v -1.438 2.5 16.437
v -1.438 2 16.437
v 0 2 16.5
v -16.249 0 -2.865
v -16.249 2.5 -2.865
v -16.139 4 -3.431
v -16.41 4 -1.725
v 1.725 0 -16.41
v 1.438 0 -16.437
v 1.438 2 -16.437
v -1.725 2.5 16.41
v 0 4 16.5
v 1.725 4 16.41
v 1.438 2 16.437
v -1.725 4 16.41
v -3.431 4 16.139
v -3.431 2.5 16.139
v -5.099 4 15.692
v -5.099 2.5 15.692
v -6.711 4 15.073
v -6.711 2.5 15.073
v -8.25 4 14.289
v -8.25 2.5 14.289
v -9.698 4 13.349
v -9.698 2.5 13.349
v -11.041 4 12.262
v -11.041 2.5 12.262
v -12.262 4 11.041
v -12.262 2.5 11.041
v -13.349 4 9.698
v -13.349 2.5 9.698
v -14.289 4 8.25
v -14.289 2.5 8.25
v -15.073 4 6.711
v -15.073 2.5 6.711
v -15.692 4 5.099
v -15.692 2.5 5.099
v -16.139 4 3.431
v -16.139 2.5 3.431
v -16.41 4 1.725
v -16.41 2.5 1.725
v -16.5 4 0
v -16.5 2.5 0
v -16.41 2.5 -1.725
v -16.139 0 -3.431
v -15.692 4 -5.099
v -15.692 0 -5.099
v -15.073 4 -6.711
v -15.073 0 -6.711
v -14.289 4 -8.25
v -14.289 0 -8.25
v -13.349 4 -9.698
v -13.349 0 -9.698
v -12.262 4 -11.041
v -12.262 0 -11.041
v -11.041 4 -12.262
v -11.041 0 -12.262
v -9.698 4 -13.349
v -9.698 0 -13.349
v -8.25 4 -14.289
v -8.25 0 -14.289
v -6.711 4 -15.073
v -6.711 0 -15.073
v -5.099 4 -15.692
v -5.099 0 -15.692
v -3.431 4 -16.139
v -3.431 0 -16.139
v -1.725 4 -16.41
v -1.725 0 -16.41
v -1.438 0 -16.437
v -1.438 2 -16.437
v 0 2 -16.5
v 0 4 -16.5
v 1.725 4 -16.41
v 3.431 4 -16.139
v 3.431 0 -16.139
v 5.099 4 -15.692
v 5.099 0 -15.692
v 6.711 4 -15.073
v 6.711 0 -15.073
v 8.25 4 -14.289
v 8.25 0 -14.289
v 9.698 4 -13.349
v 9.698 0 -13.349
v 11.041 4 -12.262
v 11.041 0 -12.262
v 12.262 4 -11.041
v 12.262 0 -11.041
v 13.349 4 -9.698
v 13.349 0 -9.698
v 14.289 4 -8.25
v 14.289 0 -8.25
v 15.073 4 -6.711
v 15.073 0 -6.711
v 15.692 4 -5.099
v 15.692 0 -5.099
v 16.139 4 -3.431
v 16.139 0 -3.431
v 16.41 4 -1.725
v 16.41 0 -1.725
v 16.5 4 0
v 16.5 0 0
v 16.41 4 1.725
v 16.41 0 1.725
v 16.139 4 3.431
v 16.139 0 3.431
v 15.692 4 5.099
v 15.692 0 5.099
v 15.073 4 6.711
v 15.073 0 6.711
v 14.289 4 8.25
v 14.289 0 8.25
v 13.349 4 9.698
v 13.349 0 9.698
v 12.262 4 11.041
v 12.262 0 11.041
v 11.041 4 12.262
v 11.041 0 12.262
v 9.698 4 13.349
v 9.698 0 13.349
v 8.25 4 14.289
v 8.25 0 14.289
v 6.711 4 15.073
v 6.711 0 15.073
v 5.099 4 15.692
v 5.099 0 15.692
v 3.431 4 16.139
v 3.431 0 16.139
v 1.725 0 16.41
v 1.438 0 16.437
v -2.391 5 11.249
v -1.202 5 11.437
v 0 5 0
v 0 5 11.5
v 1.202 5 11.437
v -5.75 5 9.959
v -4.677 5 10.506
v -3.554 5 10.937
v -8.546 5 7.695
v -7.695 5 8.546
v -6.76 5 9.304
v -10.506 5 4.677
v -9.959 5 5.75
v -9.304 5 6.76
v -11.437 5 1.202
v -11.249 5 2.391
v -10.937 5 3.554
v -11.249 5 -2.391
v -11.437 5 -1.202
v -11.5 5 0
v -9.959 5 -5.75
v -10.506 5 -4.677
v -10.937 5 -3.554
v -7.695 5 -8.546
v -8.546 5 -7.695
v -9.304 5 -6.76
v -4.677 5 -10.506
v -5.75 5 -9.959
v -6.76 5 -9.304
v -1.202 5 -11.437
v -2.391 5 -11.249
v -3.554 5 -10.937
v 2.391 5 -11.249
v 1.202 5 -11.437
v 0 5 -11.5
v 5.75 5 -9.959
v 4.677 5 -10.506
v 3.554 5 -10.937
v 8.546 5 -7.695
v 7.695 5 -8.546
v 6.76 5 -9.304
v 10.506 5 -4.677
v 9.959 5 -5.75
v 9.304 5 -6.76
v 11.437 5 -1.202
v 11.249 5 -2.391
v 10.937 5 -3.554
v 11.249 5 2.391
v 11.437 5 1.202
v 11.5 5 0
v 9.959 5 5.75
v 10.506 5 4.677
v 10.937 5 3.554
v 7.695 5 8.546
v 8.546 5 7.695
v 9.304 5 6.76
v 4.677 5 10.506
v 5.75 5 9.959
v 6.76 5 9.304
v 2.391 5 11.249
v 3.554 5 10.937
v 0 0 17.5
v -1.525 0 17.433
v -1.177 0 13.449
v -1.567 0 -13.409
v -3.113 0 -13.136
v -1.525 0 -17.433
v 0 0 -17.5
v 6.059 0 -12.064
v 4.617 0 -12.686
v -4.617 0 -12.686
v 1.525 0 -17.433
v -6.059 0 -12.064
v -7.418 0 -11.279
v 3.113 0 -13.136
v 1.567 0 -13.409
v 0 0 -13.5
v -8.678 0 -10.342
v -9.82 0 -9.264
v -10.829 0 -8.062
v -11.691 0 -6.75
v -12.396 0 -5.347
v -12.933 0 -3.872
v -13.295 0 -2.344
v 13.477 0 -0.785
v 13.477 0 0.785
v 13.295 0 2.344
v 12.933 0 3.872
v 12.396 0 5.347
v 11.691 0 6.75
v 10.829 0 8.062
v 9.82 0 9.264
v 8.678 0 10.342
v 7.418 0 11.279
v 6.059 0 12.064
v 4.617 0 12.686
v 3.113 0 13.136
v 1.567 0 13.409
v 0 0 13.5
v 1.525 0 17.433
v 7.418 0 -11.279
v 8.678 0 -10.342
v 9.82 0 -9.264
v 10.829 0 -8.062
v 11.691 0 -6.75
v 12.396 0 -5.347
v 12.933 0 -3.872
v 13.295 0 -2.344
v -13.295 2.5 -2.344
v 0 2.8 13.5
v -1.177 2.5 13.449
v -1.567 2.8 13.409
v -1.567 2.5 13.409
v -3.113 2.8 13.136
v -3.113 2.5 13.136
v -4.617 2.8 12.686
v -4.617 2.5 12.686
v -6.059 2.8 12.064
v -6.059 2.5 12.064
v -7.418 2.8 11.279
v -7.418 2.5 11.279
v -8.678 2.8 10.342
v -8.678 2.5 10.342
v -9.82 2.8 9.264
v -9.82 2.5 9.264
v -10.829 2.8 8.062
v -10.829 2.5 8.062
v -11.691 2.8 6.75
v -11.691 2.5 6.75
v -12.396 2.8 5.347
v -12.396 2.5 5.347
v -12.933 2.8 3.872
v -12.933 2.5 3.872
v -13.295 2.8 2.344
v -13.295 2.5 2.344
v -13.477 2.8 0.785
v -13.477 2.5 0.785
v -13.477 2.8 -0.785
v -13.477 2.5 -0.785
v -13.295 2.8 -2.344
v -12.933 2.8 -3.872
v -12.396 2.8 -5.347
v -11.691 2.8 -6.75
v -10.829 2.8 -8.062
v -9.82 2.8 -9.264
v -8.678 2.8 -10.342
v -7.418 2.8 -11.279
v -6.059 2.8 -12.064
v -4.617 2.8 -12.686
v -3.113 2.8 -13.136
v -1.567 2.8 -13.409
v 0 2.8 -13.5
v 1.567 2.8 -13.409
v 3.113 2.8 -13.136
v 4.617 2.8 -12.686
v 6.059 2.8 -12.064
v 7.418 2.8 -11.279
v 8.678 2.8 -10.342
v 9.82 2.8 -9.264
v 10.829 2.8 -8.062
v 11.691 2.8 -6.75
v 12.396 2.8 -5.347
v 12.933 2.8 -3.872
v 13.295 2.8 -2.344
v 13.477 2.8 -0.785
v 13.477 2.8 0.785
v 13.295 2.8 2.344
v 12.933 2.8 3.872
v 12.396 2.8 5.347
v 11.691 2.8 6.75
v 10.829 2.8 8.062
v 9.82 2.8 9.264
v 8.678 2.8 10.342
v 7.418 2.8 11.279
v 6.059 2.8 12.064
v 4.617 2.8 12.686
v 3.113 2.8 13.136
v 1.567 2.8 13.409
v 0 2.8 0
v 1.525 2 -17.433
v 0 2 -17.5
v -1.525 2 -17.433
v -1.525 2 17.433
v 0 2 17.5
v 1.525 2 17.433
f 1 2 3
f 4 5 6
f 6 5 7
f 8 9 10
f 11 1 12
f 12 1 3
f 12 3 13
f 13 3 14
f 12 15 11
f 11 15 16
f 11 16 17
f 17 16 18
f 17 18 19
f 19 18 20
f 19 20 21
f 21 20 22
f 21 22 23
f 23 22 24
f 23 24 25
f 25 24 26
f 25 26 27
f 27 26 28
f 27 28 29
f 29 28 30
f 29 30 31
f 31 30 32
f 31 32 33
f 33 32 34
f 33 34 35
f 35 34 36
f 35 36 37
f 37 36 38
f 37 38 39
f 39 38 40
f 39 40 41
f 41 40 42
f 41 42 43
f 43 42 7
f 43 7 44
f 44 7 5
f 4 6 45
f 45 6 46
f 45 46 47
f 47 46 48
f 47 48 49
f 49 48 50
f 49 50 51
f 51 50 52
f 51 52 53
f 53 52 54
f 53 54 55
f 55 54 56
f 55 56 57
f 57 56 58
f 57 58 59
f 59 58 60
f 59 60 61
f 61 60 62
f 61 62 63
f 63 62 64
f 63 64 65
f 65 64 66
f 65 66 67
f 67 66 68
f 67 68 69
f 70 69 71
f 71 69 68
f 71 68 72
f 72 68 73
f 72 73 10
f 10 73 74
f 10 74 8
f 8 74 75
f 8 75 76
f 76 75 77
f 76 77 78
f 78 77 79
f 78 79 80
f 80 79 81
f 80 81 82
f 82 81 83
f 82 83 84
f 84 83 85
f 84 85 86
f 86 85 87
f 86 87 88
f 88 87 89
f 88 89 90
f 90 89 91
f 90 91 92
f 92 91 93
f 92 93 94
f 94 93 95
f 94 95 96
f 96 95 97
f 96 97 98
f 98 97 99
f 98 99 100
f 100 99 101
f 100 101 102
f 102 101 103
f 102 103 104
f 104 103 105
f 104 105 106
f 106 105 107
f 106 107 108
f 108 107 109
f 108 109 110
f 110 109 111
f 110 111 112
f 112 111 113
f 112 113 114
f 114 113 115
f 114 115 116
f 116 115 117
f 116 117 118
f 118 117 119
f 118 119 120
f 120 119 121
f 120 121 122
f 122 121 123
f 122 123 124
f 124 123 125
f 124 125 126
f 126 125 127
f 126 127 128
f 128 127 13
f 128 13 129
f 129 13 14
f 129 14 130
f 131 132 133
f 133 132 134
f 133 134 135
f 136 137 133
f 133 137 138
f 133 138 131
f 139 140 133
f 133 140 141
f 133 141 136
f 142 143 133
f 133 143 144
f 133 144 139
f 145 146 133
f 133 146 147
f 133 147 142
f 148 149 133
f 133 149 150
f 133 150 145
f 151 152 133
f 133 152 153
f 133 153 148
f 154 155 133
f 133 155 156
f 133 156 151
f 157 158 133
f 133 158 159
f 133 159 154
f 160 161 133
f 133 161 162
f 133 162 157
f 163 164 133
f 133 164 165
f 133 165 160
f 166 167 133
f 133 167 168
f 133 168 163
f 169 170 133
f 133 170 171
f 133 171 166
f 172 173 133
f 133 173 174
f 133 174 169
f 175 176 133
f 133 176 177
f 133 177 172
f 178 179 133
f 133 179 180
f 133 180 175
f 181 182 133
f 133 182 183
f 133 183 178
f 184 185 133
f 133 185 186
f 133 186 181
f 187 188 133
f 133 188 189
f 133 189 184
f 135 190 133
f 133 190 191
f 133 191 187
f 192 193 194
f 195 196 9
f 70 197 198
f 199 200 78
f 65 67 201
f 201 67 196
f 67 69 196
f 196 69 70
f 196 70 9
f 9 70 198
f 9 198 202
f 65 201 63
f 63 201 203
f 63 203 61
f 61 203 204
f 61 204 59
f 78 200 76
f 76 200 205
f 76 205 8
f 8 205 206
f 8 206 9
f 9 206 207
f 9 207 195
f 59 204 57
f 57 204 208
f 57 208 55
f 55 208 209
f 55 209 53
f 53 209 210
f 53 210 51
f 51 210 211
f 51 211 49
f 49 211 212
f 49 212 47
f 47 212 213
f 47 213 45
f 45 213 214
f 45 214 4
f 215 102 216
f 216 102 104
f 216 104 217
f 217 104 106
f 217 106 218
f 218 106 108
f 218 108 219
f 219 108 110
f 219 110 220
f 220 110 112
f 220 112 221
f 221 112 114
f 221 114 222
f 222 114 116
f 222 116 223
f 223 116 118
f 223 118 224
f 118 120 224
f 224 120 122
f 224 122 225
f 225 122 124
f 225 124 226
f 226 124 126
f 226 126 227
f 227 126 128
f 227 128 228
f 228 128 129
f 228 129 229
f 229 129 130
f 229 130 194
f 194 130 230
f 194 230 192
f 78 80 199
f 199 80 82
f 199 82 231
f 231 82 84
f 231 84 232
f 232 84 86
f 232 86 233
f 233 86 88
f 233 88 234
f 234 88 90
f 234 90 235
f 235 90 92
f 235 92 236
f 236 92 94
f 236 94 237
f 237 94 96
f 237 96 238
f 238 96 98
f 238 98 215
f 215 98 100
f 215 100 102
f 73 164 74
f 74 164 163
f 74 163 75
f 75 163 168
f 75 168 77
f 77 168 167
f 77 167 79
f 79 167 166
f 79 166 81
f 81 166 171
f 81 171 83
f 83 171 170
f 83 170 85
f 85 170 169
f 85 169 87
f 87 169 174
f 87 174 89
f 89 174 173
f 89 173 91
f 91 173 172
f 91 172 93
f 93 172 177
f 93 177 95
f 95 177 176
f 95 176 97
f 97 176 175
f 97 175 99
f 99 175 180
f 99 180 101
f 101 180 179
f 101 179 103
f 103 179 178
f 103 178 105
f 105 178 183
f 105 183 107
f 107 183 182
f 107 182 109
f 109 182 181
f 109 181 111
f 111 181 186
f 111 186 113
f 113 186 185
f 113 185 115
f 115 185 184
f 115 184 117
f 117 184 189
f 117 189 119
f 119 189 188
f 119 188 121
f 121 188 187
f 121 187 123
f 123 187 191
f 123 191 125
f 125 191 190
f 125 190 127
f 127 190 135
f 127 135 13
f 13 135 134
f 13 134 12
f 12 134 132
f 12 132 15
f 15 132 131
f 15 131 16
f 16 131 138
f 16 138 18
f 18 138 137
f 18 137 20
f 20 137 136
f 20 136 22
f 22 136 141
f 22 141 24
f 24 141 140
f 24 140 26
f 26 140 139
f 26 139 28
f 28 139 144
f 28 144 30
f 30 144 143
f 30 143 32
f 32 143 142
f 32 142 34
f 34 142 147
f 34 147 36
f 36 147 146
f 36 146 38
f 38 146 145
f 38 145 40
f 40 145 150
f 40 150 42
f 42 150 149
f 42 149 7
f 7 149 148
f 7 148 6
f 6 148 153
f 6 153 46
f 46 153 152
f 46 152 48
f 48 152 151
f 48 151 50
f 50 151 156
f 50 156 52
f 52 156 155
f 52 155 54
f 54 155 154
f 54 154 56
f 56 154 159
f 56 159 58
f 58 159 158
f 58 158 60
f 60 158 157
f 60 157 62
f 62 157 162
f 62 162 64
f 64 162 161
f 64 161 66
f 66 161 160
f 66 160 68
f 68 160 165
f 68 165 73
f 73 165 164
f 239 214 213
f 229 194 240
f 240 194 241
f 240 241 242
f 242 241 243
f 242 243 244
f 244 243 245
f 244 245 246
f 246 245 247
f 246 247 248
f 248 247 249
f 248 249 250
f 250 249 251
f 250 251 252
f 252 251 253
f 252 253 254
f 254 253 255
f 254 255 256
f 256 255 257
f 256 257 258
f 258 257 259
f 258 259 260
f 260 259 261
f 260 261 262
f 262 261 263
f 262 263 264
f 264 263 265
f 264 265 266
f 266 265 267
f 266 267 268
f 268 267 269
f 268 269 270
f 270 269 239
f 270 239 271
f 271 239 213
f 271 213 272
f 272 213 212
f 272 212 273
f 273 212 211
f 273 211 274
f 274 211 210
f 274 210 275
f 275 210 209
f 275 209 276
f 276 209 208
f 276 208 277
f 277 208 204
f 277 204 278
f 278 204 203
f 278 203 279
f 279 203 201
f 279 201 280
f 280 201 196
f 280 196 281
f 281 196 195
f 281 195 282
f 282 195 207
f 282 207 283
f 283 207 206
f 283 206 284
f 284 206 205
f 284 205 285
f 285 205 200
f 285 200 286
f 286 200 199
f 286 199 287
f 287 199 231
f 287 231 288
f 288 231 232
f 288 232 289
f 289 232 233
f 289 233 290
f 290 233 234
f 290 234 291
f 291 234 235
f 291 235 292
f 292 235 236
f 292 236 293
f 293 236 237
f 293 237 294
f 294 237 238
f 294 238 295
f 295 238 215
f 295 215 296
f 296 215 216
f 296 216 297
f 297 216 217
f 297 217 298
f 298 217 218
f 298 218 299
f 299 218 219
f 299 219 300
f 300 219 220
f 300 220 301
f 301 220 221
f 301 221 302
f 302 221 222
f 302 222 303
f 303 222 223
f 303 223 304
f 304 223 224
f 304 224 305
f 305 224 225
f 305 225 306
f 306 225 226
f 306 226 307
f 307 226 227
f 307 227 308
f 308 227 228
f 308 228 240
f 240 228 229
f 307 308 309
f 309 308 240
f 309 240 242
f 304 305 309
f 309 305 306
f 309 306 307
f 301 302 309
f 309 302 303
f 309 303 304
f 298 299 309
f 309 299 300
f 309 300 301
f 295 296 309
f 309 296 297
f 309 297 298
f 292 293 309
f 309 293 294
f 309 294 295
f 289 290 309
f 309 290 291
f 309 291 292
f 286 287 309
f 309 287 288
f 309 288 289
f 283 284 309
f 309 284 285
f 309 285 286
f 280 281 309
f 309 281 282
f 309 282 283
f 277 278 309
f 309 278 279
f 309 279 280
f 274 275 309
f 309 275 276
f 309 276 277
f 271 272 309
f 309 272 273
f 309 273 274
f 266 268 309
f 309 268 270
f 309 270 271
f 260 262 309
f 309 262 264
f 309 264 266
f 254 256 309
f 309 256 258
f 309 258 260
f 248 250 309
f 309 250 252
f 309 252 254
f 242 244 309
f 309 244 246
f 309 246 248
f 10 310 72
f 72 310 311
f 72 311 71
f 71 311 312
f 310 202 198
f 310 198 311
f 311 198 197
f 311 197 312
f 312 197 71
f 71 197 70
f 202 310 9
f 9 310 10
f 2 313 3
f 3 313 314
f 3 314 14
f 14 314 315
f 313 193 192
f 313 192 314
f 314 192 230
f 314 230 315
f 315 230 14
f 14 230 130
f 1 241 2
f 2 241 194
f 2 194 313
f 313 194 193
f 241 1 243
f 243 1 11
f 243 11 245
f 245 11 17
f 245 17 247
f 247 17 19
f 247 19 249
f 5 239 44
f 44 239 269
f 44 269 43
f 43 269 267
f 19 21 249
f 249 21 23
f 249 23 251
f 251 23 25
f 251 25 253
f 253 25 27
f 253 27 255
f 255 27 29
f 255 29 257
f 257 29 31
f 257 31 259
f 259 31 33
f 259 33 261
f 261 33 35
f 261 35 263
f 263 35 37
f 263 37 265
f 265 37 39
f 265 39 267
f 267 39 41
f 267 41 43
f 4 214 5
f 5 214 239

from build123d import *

# Parameters (mm, degrees)
SKETCH1_R                    = 16.5
BOSS_EXTRUDE1_DEPTH          = 5
CHAMFER2_SIZE                = 1
CHAMFER2_SIZE2               = 5
SKETCH3_R                    = 13.5
CUT_EXTRUDE1_DEPTH           = 2.8
SKETCH5_W                    = 1
SKETCH5_H                    = 2
REVOLVE4_ANGLE               = 5
REVOLVE4_OTHER_WAY_ANGLE     = 5
SKETCH6_W                    = 1
SKETCH6_H                    = 2
REVOLVE6_ANGLE               = 5
REVOLVE6_OTHER_WAY_ANGLE     = 5
SKETCH9_W                    = 16.5
SKETCH9_H                    = 2.5
CUT_REVOLVE1_ANGLE           = 85
CUT_REVOLVE1_OTHER_WAY_ANGLE = 10


with BuildPart() as part:
    # Sketch1 → Boss-Extrude1 (new body)
    with BuildSketch(Plane(origin=(0, 0, 0), x_dir=(1, 0, 0), z_dir=(0, 1, 0))):
        with Locations(Location((0, 0, 0), (0, 0, 270))):
            Circle(SKETCH1_R)
    extrude(amount=BOSS_EXTRUDE1_DEPTH)

    # Chamfer2
    chamfer2_edges = [part.edges().sort_by_distance(p)[0] for p in [
        (0, 5, -16.5),
    ]]
    chamfer2_side = [part.faces().sort_by_distance(p)[0] for p in [
        (0, 2.5, -16.5),
    ]]
    chamfer(chamfer2_edges, length=CHAMFER2_SIZE, length2=CHAMFER2_SIZE2, reference=chamfer2_side[0])

    # Sketch3 → Cut-Extrude1 (cut)
    with BuildSketch(Plane(origin=(0, 0, 0), x_dir=(1, 0, 0), z_dir=(0, 1, 0))):
        with Locations(Location((0, 0, 0), (0, 0, 270))):
            Circle(SKETCH3_R)
    extrude(amount=CUT_EXTRUDE1_DEPTH, mode=Mode.SUBTRACT)

    # Sketch5 → Revolve4 (revolve)
    with BuildSketch(Plane(origin=(0, 0, 0), x_dir=(0, 0, -1), z_dir=(1, 0, 0))):
        with Locations((17, 1)):
            Rectangle(SKETCH5_W, SKETCH5_H)
    revolve(axis=Axis((0, 0, 0), (0, 1, 0)), revolution_arc=REVOLVE4_ANGLE)

    # Sketch5 → Revolve4 other way (revolve)
    with BuildSketch(Plane(origin=(0, 0, 0), x_dir=(0, 0, -1), z_dir=(1, 0, 0))):
        with Locations((17, 1)):
            Rectangle(SKETCH5_W, SKETCH5_H)
    revolve(axis=Axis((0, 0, 0), (0, -1, 0)), revolution_arc=REVOLVE4_OTHER_WAY_ANGLE)

    # Sketch6 → Revolve6 (revolve)
    with BuildSketch(Plane(origin=(0, 0, 0), x_dir=(0, 0, -1), z_dir=(1, 0, 0))):
        with Locations((-17, 1)):
            Rectangle(SKETCH6_W, SKETCH6_H)
    revolve(axis=Axis((0, 0, 0), (0, 1, 0)), revolution_arc=REVOLVE6_ANGLE)

    # Sketch6 → Revolve6 other way (revolve)
    with BuildSketch(Plane(origin=(0, 0, 0), x_dir=(0, 0, -1), z_dir=(1, 0, 0))):
        with Locations((-17, 1)):
            Rectangle(SKETCH6_W, SKETCH6_H)
    revolve(axis=Axis((0, 0, 0), (0, -1, 0)), revolution_arc=REVOLVE6_OTHER_WAY_ANGLE)

    # Sketch9 → Cut-Revolve1 (revolve, cut)
    with BuildSketch(Plane.XY):
        with Locations((-8.25, 1.25)):
            Rectangle(SKETCH9_W, SKETCH9_H)
    revolve(axis=Axis((0, 0, 0), (0, 1, 0)), revolution_arc=CUT_REVOLVE1_ANGLE, mode=Mode.SUBTRACT)

    # Sketch9 → Cut-Revolve1 other way (revolve, cut)
    with BuildSketch(Plane.XY):
        with Locations((-8.25, 1.25)):
            Rectangle(SKETCH9_W, SKETCH9_H)
    revolve(axis=Axis((0, 0, 0), (0, -1, 0)), revolution_arc=CUT_REVOLVE1_OTHER_WAY_ANGLE, mode=Mode.SUBTRACT)


solid = part.part
